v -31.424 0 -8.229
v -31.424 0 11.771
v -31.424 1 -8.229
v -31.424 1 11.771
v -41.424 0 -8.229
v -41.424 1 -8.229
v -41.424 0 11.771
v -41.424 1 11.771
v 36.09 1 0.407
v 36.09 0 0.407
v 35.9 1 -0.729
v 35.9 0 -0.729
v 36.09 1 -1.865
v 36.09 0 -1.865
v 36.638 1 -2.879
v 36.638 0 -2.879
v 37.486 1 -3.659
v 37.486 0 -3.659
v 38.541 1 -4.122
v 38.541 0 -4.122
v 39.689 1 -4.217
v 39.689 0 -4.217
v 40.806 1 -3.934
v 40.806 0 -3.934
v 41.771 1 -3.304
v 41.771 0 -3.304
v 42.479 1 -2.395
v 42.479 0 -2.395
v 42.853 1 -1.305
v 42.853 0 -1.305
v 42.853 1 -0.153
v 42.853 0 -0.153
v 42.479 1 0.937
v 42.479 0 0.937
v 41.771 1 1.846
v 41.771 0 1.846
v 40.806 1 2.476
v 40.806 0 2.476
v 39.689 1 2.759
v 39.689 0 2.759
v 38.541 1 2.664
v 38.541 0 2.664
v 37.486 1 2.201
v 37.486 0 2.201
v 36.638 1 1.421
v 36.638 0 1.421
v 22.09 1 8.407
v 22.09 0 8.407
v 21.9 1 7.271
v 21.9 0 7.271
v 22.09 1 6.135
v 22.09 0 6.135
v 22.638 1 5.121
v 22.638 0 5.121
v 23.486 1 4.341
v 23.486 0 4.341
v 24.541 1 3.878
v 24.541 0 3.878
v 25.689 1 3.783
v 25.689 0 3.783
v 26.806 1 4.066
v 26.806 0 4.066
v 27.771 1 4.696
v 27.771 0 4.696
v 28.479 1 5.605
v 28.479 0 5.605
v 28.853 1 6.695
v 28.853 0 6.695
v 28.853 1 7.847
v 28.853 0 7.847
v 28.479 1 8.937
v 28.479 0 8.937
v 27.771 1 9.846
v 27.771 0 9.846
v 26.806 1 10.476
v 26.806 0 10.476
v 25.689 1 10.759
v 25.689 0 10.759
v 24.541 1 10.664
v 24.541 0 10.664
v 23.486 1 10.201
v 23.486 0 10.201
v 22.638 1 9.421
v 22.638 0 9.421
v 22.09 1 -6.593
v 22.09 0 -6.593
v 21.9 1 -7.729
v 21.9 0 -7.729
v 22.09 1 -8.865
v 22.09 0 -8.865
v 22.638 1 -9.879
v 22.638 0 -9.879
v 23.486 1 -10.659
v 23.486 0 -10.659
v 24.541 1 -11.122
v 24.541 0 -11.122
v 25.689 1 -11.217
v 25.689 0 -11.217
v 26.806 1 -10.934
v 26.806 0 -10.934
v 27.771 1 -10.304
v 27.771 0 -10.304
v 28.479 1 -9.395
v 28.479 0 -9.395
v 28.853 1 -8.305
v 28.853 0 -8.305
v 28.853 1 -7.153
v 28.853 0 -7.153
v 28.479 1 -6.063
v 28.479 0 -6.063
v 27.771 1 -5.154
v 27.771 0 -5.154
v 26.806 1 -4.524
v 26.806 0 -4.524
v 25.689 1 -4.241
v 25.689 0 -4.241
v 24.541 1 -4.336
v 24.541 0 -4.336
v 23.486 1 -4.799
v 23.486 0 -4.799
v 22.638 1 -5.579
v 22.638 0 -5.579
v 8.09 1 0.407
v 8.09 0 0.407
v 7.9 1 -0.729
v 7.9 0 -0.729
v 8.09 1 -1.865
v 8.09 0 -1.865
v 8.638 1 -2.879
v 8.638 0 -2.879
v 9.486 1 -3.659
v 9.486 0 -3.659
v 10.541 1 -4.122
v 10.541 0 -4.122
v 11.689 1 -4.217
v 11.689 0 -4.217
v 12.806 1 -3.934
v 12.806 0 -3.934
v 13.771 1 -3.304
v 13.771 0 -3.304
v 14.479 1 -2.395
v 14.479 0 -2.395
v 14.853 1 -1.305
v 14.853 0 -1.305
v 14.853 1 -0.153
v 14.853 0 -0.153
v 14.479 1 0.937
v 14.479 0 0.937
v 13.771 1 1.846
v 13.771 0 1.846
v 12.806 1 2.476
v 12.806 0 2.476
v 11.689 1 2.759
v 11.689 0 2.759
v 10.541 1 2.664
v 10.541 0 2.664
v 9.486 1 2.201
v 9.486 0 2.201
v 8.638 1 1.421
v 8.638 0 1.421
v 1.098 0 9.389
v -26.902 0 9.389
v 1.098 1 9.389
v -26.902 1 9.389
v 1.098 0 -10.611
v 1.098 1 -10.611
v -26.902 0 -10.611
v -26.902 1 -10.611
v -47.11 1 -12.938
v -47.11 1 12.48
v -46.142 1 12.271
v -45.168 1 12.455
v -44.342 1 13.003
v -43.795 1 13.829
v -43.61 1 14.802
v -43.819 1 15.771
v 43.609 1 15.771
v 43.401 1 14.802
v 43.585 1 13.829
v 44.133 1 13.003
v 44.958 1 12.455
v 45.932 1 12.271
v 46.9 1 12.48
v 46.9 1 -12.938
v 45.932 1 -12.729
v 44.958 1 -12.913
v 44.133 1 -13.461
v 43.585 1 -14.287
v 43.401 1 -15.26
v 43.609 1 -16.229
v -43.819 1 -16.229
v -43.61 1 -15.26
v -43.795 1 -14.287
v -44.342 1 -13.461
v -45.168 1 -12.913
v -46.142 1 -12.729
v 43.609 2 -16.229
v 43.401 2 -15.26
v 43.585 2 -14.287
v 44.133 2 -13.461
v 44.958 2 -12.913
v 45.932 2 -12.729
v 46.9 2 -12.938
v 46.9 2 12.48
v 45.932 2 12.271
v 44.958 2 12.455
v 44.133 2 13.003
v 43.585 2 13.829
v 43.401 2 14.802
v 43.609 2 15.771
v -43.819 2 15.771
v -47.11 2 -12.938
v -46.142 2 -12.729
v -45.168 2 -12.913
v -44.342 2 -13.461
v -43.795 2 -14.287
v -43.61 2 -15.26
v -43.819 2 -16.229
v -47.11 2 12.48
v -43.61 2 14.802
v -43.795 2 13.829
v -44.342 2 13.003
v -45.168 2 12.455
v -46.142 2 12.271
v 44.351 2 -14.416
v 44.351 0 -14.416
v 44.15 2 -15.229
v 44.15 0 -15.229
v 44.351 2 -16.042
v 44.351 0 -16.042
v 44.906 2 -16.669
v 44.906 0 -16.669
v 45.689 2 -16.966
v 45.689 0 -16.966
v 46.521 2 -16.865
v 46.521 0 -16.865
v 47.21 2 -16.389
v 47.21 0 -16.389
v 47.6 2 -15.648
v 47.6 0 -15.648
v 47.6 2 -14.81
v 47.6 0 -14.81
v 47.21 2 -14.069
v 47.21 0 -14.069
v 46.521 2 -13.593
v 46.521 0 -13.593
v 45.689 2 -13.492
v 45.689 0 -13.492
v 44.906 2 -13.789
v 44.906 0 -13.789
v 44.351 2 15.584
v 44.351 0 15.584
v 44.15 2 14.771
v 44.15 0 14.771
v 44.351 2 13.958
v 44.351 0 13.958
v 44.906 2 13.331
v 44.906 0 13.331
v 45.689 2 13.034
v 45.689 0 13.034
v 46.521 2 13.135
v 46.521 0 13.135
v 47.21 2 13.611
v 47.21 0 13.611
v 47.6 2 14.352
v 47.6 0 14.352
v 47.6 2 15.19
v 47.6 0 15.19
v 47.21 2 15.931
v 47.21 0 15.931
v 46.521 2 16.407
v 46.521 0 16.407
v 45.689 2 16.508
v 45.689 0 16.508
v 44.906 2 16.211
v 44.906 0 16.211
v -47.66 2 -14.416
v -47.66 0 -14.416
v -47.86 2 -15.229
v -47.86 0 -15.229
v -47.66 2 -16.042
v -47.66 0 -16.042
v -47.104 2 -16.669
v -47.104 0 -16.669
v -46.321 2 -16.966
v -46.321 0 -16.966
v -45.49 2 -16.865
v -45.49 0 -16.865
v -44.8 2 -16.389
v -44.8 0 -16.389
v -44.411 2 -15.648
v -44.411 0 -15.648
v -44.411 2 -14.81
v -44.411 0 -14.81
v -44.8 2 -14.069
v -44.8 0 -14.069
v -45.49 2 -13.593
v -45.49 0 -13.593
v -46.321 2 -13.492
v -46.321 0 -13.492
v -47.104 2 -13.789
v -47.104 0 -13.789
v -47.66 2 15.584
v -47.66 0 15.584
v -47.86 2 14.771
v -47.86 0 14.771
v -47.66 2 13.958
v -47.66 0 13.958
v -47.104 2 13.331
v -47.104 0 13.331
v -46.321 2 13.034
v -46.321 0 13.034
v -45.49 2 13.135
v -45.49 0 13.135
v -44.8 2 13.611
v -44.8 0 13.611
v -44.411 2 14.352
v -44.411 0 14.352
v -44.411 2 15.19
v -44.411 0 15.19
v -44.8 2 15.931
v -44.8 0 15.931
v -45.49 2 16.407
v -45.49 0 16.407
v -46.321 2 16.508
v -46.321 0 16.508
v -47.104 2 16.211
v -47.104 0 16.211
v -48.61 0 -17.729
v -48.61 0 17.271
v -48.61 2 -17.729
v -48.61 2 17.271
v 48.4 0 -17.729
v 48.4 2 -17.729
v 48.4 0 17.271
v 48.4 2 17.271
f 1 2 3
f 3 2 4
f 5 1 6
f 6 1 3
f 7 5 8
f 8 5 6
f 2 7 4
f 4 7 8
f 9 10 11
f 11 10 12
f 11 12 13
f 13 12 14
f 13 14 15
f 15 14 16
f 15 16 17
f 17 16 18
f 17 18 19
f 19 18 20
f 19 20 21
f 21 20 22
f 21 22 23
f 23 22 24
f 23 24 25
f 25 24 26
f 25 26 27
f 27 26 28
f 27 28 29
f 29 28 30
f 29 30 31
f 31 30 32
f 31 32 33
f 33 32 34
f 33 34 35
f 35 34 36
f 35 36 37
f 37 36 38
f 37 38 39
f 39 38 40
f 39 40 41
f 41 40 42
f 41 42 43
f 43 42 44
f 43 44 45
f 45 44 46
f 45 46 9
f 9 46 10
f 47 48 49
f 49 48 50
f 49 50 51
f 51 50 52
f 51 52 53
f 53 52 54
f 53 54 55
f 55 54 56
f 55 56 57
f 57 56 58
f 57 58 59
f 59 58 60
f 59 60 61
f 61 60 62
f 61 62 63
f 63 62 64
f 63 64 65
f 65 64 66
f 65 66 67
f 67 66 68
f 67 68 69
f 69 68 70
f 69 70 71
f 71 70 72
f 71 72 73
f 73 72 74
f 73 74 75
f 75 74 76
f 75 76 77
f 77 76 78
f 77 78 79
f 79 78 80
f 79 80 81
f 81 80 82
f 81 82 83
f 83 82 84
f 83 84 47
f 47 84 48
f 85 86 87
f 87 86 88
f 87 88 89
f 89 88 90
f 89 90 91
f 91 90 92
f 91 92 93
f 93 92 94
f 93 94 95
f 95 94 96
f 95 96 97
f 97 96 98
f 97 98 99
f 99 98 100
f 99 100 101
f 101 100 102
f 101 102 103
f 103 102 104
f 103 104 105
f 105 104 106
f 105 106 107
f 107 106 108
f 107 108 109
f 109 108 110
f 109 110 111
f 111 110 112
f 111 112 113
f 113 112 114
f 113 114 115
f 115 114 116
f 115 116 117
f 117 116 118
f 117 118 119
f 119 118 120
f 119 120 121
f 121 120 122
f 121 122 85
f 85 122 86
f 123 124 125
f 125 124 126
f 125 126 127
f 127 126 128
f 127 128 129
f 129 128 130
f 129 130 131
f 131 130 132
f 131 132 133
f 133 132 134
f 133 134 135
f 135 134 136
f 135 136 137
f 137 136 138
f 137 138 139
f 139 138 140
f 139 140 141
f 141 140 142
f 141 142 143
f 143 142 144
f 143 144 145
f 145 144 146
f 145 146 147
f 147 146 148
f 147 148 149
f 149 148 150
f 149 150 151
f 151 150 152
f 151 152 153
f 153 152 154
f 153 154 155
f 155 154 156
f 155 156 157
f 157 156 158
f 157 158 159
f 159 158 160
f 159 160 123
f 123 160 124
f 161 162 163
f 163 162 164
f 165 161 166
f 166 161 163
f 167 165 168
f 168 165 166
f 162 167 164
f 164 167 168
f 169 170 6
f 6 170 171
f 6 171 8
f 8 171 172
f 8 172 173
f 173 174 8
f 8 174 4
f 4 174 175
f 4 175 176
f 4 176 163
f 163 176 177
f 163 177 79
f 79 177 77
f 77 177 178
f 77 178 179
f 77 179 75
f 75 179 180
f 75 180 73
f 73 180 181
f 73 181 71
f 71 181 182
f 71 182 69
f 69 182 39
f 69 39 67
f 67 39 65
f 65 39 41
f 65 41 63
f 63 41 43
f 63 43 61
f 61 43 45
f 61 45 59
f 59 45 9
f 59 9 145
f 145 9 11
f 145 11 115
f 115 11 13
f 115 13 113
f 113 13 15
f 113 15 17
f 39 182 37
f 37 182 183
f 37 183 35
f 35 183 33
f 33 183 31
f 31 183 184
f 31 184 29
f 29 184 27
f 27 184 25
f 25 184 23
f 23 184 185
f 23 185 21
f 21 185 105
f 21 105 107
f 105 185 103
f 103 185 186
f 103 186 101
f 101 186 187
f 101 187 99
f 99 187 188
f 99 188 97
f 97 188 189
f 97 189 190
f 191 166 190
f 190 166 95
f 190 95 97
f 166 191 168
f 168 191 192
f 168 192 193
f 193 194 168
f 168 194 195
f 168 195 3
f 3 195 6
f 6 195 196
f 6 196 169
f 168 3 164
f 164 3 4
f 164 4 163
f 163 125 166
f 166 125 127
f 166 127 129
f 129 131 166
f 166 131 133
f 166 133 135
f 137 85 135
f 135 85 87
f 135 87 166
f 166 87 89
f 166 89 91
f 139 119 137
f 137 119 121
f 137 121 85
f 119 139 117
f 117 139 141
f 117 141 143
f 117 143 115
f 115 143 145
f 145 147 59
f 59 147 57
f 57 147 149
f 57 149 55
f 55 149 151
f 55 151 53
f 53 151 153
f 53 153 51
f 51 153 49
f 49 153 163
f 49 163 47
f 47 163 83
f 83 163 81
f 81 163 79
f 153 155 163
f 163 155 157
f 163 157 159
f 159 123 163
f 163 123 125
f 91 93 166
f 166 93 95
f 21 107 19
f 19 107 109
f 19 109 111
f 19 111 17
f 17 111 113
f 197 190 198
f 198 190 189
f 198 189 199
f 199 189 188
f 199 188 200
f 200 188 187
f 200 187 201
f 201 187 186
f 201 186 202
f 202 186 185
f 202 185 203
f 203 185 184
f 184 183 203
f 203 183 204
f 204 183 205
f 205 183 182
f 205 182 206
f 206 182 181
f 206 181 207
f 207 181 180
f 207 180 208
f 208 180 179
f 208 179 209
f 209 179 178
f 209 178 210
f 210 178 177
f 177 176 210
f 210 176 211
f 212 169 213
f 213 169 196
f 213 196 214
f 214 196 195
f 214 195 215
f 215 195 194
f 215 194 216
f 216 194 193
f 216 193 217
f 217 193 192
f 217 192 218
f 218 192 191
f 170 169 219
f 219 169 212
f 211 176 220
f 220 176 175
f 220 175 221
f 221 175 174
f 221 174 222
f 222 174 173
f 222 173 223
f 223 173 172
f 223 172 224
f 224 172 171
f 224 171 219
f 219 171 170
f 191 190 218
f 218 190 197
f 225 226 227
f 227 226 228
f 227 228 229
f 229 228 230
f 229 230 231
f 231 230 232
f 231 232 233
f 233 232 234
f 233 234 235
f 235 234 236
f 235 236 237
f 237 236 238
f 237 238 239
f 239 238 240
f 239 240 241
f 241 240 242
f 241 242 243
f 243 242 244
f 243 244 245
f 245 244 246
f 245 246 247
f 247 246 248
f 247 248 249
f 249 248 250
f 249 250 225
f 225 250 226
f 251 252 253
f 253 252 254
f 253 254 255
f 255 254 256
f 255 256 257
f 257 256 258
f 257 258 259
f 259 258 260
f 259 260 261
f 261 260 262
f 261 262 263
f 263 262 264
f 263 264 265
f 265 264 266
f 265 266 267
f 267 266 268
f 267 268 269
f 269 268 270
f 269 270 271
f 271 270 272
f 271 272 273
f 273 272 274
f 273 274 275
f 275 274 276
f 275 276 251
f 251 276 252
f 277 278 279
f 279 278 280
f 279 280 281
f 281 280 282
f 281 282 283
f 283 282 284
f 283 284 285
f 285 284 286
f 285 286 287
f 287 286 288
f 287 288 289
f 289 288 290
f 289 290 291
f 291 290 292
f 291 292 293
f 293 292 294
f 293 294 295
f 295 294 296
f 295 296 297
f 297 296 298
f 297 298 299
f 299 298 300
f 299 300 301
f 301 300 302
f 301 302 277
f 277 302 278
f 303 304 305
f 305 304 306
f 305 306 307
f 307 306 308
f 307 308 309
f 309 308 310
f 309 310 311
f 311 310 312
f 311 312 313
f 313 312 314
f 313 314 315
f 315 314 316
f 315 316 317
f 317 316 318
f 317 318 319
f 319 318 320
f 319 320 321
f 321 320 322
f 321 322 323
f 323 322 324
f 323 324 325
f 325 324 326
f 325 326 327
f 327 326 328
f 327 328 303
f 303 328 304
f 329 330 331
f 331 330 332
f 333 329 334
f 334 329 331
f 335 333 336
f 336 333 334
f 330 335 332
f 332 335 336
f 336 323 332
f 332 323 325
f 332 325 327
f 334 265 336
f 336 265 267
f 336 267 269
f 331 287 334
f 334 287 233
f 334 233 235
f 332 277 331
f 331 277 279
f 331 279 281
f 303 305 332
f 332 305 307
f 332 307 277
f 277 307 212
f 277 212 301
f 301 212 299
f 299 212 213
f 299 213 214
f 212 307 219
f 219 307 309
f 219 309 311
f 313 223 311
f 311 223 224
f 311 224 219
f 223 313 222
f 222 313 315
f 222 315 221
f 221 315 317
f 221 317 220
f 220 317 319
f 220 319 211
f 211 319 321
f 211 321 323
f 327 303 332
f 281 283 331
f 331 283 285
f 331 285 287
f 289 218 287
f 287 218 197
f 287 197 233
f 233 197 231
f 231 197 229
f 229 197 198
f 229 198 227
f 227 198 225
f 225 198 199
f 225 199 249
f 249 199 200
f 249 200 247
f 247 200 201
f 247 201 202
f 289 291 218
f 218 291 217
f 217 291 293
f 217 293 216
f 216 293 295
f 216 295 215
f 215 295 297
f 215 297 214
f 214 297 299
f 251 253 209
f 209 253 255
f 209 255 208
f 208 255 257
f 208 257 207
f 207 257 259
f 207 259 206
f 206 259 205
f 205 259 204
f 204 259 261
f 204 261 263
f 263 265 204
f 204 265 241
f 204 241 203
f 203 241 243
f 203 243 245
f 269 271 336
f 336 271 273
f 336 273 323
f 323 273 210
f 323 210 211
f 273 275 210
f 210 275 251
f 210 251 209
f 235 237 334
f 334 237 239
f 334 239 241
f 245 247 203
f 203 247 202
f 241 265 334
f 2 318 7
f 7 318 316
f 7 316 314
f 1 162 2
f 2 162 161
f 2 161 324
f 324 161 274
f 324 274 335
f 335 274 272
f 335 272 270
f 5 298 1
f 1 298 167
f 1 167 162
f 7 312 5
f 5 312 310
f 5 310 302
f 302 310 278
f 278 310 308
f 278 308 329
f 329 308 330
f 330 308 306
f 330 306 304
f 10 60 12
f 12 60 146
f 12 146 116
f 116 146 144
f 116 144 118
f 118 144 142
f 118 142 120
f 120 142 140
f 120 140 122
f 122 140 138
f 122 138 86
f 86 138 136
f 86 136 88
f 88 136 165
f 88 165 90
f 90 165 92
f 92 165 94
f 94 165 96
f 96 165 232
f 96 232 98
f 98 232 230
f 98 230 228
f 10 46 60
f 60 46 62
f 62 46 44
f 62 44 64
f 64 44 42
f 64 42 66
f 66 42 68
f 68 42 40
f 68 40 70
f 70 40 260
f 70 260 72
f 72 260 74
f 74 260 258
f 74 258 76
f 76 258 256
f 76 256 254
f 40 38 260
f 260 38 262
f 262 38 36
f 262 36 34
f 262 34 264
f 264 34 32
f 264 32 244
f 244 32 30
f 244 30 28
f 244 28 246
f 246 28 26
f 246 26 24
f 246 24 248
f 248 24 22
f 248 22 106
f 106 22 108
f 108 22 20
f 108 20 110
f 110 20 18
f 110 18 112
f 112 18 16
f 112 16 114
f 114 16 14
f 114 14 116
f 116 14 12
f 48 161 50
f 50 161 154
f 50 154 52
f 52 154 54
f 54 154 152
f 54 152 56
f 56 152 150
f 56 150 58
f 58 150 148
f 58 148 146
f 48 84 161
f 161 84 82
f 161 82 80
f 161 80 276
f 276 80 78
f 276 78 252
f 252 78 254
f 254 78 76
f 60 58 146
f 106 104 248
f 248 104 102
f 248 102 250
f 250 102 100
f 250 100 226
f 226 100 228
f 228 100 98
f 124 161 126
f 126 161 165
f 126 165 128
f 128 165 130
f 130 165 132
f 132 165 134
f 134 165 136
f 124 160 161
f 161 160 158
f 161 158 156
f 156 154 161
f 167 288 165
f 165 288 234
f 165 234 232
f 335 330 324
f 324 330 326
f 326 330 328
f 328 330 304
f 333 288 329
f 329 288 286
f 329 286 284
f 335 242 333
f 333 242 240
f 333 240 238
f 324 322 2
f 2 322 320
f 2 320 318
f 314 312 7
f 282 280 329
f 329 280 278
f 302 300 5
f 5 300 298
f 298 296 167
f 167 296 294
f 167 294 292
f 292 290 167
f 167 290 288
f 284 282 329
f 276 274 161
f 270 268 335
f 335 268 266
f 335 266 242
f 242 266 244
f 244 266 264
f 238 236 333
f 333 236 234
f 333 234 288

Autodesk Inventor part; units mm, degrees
ref_plane "YZ Plane" through (0, 0, 0) normal (1, 0, 0) x (0, 1, 0)
ref_plane "XZ Plane" through (0, 0, 0) normal (0, 1, 0) x (-1, 0, 0)
ref_plane "XY Plane" through (0, 0, 0) normal (0, 0, 1) x (1, 0, 0)
sketch "Esboço1" plane through (0, 0, 0) normal (0, 1, 0) x (-1, 0, 0)
  line L0 (-48.4004, 17.271) -> (48.6103, 17.271)
  line L1 (48.6103, 17.271) -> (48.6103, -17.729)
  line L2 (48.6103, -17.729) -> (-48.4004, -17.729)
  line L3 (-48.4004, -17.729) -> (-48.4004, 17.271)
  line L4 (-51.9004, -19.229) -> (-51.9004, 19.271)
  line L5 (-51.9004, 19.271) -> (52.1103, 19.271)
  line L6 (-51.9004, -19.229) -> (52.1103, -19.229)
  line L7 (52.1103, -19.229) -> (52.1103, 19.271)
  circle A0 centre (-45.9004, 14.771) radius 1.75
  circle A1 centre (-45.9004, 14.771) radius 2.5
  circle A2 centre (-45.9004, -15.229) radius 1.75
  circle A3 centre (-45.9004, -15.229) radius 2.5
  circle A4 centre (46.1103, 14.771) radius 2.5
  circle A5 centre (46.1103, 14.771) radius 1.75
  circle A6 centre (46.1103, -15.229) radius 2.5
  circle A7 centre (46.1103, -15.229) radius 1.75
  line L8 (26.9024, 10.578) -> (26.9024, -11.7995)
  line L9 (-30.4004, -2.229) -> (-20.4004, -2.229)
  line L10 (-20.4004, -2.229) -> (-20.4004, -12.229)
  line L11 (-20.4004, -12.229) -> (-30.4004, -12.229)
  line L12 (-30.4004, -12.229) -> (-30.4004, -2.229)
  line L13 (-6.4004, 4.271) -> (-6.4004, -5.729)
  line L14 (-16.4004, 4.271) -> (-6.4004, 4.271)
  line L15 (-16.4004, -5.729) -> (-16.4004, 4.271)
  line L16 (-6.4004, -5.729) -> (-16.4004, -5.729)
  line L17 (-20.4004, 12.271) -> (-20.4004, 2.271)
  line L18 (-30.4004, 12.271) -> (-20.4004, 12.271)
  line L19 (-30.4004, 2.271) -> (-30.4004, 12.271)
  line L20 (-20.4004, 2.271) -> (-30.4004, 2.271)
  line L21 (-34.4004, 4.271) -> (-34.4004, -5.729)
  line L22 (-44.4004, 4.271) -> (-34.4004, 4.271)
  line L23 (-44.4004, -5.729) -> (-44.4004, 4.271)
  line L24 (-34.4004, -5.729) -> (-44.4004, -5.729)
  line L25 (31.4236, 11.771) -> (41.4236, 11.771)
  line L26 (41.4236, 11.771) -> (41.4236, -8.229)
  line L27 (41.4236, -8.229) -> (31.4236, -8.229)
  line L28 (31.4236, -8.229) -> (31.4236, 11.771)
  circle A8 centre (-25.4004, 7.271) radius 3.5
  circle A9 centre (-11.4004, -0.729) radius 3.5
  circle A10 centre (-25.4004, -7.729) radius 3.5
  circle A11 centre (-39.4004, -0.729) radius 3.5
  line L29 (-43.6091, 15.771) -> (43.819, 15.771)
  line L30 (-46.9004, -12.9377) -> (-46.9004, 12.4797)
  line L31 (43.819, -16.229) -> (-43.6091, -16.229)
  line L32 (47.1103, 12.4797) -> (47.1103, -12.9377)
  circle A12 centre (0.1524, 12.1393) radius 1.25
  circle A13 centre (25.6524, -13.3607) radius 1.25
  circle A14 centre (25.6524, 12.1393) radius 1.25
  circle A15 centre (0.1524, -13.3607) radius 1.25
  circle A16 centre (0.1524, -13.3607) radius 2
  circle A17 centre (0.1524, 12.1393) radius 2
  circle A18 centre (25.6524, 12.1393) radius 2
  circle A19 centre (25.6524, -13.3607) radius 2
  line L33 (3.9024, 13.3893) -> (21.9024, 13.3893)
  line L34 (21.9024, 13.3893) -> (21.9024, 6.3893)
  line L35 (21.9024, 6.3893) -> (3.9024, 6.3893)
  line L36 (3.9024, 6.3893) -> (3.9024, 13.3893)
  line L37 (-1.0976, -11.7995) -> (-1.0976, 10.578)
  line L38 (-1.0976, 12.1393) -> (-1.0976, 12.271)
  line L39 (1.7137, 13.3893) -> (24.0912, 13.3893)
  line L40 (26.9024, -14.6107) -> (25.6524, -14.6107)
  line L41 (24.0912, -14.6107) -> (1.7137, -14.6107)
  line L42 (0.1524, -14.6107) -> (-1.0976, -14.6107)
  line L43 (-1.0976, 9.3893) -> (26.9024, 9.3893)
  line L44 (26.9024, 9.3893) -> (26.9024, -10.6107)
  line L45 (26.9024, -10.6107) -> (-1.0976, -10.6107)
  line L46 (-1.0976, -10.6107) -> (-1.0976, 9.3893)
  point P0 (0, 0)
  point P1 (-4.4505, -19.229)
  point P2 (-25.4004, -2.229)
  point P3 (12.9024, 6.3893)
  point P4 (12.9024, 13.3893)
  point P5 (26.9024, -10.6107)
  point P6 (-1.0976, -10.6107)
  dimension "d35" = 2.5
  dimension "d36" = 2.5
  dimension "d38" = 2.5
  dimension "d0" = 3.5
  dimension "d1" = 2
  dimension "d2" = 3.5
  dimension "d3" = 3.5
  dimension "d4" = 5
  dimension "d5" = 3.5
  dimension "d6" = 5
  dimension "d7" = 5
  dimension "d8" = 3.5
  dimension "d9" = 5
  dimension "d10" = 3.5
  dimension "d11" = 104.0106
  dimension "d12" = 38.5
  dimension "d13" = 28
  dimension "d14" = 10
  dimension "d15" = 10
  dimension "d16" = 10
  dimension "d17" = 10
  dimension "d18" = 10
  dimension "d19" = 10
  dimension "d20" = 10
  dimension "d21" = 10
  dimension "d22" = 10
  dimension "d23" = 20
  dimension "d24" = 4
  dimension "d25" = 4
  dimension "d26" = 4
  dimension "d27" = 4
  dimension "d28" = 5.5
  dimension "d29" = 7
  dimension "d30" = 7
  dimension "d31" = 7
  dimension "d32" = 7
  dimension "d33" = 1.5
  dimension "d34" = 4.5
  dimension "d37" = 2.5
  dimension "d39" = 4
  dimension "d40" = 4
  dimension "d41" = 4
  dimension "d42" = 4
  dimension "d43" = 5
  dimension "d44" = 7
  dimension "d47" = 2.3817
  dimension "d48" = 28
  dimension "d49" = 4
  dimension "d50" = 4
extrude "Extrusão1" add sketch "Esboço1" along normal blind 2 contours L0 A1 L3 | L0 A4 L29 A1 | A1 | A1 L30 A3 L3 | L0 L1 A4 | A4 | A3 L2 L3 | A3 | L1 A6 L32 A4 | A3 L31 A6 L2 | A6 | L1 L2 A6
extrude "Extrusão2" add sketch "Esboço1" along normal blind 1 contours L29 A4 L32 A6 L31 A3 L30 A1 | L8 L43 L34 L39 A18 | A18 | L8 A19 L41 A16 L37 L45 | L43 L36 L33 L34 | A19 | L43 L37 A17 L39 L36 | A16 | A17 | L9 L10 L11 L12 | L13 L16 L15 L14 | L17 L20 L19 L18 | L21 L24 L23 L22 | A12 | A13 | A14 | A15
properties part number "tampa_lcd_botoes"
